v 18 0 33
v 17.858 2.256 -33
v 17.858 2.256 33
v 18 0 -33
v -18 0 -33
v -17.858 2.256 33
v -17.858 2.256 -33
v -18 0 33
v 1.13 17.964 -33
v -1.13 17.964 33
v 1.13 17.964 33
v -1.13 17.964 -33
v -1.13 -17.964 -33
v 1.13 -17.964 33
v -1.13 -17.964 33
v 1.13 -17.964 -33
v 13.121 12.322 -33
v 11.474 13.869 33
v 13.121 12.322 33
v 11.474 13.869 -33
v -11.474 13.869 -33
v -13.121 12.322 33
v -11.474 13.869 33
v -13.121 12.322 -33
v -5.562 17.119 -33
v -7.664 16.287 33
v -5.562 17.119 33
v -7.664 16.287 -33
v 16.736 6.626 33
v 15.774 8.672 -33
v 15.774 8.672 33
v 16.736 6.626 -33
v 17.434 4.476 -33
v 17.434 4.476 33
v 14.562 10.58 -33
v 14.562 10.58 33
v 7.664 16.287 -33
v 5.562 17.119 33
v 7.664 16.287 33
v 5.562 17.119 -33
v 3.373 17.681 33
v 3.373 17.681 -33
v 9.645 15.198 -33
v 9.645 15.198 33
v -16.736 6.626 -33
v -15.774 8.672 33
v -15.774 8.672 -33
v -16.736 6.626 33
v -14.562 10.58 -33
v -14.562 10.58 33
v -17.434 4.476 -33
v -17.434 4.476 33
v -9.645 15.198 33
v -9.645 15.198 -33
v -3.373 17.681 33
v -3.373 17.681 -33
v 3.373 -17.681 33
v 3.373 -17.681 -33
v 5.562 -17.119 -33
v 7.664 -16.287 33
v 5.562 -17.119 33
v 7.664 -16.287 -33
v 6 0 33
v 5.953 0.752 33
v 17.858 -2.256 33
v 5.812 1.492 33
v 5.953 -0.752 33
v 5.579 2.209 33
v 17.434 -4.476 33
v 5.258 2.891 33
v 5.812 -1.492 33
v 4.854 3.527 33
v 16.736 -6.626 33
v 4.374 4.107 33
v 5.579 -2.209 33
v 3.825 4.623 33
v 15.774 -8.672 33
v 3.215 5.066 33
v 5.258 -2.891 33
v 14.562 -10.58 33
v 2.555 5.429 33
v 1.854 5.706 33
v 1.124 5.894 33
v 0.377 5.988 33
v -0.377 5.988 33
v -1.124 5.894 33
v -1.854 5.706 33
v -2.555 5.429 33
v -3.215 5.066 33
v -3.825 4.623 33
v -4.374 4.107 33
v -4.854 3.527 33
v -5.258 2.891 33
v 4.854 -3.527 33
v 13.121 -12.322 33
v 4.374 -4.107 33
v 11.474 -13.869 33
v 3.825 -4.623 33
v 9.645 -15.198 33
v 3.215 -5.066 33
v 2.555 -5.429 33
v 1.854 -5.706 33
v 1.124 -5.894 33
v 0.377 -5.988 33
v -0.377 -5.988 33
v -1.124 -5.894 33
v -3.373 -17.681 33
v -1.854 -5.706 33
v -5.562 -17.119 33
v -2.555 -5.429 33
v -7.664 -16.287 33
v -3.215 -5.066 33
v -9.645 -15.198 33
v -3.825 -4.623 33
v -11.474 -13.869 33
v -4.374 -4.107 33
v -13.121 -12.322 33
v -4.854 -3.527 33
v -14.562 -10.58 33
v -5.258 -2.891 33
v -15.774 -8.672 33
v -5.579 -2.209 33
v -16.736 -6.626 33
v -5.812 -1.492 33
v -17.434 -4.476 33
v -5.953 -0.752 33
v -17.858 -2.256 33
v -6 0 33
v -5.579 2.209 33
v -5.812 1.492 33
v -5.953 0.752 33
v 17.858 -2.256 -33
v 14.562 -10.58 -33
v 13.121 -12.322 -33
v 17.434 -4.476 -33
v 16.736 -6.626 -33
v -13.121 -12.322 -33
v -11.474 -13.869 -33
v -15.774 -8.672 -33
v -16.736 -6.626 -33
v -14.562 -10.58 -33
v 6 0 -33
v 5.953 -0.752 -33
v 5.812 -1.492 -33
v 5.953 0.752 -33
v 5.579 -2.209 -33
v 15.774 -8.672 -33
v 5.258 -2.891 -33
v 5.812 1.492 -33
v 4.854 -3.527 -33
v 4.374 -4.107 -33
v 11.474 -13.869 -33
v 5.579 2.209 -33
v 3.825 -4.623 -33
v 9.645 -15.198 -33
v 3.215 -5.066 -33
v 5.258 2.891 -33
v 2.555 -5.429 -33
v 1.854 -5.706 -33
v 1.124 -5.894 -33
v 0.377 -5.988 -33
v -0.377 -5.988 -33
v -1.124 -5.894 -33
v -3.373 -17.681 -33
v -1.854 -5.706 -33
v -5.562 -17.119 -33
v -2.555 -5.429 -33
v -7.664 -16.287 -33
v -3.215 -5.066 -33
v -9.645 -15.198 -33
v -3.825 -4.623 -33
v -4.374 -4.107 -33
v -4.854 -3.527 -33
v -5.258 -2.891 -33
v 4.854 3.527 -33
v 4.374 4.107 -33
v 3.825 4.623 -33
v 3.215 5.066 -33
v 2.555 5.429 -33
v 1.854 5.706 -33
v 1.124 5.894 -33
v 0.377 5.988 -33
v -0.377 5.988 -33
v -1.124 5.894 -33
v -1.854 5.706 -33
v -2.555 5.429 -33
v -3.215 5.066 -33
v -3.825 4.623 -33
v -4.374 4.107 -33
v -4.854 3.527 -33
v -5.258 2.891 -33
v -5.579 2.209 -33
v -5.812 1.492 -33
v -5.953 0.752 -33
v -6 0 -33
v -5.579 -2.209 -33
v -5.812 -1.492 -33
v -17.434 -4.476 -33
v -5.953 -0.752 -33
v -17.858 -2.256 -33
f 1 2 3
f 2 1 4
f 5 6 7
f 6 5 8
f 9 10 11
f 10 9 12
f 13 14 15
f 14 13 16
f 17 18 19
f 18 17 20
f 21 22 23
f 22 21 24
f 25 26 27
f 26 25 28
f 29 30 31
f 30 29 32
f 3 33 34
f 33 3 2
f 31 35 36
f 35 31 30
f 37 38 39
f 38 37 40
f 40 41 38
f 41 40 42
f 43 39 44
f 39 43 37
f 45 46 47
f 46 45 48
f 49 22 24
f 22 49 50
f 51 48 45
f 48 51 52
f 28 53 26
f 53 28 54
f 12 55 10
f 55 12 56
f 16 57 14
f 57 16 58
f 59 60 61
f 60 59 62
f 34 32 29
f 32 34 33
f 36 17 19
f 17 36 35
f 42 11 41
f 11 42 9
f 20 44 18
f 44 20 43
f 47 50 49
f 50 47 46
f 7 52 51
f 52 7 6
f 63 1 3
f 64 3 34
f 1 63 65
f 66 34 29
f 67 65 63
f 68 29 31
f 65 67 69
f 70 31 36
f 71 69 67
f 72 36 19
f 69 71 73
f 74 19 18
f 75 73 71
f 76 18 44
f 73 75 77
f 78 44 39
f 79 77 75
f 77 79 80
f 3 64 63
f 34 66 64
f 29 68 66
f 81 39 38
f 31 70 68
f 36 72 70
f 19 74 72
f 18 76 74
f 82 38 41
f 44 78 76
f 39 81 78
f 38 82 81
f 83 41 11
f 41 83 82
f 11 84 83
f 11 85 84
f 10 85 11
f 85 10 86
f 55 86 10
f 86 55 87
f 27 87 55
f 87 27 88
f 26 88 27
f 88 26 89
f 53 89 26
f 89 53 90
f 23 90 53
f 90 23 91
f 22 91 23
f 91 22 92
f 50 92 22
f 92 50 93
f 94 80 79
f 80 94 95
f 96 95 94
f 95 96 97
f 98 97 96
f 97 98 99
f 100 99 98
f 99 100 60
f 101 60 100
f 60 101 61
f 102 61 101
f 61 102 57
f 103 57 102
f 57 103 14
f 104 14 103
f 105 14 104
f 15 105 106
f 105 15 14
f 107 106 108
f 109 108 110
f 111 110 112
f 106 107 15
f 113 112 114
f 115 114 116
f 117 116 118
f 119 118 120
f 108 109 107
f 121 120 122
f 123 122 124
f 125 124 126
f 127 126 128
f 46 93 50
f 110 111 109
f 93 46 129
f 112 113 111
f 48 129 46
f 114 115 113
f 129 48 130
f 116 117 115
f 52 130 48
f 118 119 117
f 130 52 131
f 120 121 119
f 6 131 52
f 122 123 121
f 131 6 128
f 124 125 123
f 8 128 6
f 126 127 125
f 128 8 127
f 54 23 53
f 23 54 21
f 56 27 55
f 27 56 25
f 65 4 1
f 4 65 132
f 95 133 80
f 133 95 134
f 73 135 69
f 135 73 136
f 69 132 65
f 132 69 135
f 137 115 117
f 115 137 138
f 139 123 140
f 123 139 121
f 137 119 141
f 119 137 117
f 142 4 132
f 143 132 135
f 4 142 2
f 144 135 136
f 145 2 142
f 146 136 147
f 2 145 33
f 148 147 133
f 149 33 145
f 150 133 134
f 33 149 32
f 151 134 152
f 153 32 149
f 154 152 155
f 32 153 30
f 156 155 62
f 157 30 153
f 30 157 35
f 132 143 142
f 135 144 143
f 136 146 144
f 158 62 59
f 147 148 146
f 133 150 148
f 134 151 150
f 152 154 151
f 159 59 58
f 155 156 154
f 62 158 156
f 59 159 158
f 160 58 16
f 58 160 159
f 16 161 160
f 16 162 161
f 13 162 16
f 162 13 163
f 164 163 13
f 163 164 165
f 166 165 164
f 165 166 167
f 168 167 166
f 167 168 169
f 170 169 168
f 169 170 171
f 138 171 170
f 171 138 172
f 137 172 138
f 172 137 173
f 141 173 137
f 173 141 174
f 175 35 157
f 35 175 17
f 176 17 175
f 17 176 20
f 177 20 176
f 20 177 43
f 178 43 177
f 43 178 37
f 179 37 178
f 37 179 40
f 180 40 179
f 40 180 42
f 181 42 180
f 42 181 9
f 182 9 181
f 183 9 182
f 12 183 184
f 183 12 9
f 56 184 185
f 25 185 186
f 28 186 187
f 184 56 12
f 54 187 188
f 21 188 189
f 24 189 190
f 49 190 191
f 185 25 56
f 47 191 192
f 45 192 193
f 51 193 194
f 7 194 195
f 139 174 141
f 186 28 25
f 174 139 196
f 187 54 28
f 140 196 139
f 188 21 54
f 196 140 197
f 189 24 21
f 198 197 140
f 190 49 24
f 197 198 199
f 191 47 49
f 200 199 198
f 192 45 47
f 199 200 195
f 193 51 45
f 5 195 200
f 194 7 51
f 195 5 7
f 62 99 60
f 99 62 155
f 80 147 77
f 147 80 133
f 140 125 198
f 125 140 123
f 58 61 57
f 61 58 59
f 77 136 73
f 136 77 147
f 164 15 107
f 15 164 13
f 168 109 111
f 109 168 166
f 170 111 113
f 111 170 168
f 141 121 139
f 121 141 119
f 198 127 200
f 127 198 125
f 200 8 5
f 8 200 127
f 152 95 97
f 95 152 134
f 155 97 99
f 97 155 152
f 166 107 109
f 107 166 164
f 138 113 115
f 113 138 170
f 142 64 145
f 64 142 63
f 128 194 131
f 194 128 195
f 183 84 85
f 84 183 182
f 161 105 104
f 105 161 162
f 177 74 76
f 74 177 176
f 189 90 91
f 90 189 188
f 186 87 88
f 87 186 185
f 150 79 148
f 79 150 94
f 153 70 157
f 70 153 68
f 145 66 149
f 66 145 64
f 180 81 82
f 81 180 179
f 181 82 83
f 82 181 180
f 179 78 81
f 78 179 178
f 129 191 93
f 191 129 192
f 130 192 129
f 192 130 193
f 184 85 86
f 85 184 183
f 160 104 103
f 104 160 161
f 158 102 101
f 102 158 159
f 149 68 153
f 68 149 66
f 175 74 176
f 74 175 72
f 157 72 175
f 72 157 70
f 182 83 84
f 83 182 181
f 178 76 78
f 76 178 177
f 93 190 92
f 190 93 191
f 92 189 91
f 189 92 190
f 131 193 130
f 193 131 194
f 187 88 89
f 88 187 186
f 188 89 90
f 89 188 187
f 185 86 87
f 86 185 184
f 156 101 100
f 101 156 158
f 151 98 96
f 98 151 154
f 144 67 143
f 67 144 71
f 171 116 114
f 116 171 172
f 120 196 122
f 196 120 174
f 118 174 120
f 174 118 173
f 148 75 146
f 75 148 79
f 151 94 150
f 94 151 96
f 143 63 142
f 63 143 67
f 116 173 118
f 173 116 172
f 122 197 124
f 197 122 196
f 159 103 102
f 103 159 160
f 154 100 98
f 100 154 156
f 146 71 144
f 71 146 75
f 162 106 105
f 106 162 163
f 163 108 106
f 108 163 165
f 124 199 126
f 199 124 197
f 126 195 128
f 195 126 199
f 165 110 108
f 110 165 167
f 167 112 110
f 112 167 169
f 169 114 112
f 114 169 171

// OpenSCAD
$fn = 50;


difference() {
	union() {
		translate(v = [0, 0, -33.0000000000]) {
			cylinder(h = 66, r = 18.0000000000);
		}
	}
	union() {
		translate(v = [0, 0, -100.0000000000]) {
			cylinder(h = 200, r = 6);
		}
	}
}
